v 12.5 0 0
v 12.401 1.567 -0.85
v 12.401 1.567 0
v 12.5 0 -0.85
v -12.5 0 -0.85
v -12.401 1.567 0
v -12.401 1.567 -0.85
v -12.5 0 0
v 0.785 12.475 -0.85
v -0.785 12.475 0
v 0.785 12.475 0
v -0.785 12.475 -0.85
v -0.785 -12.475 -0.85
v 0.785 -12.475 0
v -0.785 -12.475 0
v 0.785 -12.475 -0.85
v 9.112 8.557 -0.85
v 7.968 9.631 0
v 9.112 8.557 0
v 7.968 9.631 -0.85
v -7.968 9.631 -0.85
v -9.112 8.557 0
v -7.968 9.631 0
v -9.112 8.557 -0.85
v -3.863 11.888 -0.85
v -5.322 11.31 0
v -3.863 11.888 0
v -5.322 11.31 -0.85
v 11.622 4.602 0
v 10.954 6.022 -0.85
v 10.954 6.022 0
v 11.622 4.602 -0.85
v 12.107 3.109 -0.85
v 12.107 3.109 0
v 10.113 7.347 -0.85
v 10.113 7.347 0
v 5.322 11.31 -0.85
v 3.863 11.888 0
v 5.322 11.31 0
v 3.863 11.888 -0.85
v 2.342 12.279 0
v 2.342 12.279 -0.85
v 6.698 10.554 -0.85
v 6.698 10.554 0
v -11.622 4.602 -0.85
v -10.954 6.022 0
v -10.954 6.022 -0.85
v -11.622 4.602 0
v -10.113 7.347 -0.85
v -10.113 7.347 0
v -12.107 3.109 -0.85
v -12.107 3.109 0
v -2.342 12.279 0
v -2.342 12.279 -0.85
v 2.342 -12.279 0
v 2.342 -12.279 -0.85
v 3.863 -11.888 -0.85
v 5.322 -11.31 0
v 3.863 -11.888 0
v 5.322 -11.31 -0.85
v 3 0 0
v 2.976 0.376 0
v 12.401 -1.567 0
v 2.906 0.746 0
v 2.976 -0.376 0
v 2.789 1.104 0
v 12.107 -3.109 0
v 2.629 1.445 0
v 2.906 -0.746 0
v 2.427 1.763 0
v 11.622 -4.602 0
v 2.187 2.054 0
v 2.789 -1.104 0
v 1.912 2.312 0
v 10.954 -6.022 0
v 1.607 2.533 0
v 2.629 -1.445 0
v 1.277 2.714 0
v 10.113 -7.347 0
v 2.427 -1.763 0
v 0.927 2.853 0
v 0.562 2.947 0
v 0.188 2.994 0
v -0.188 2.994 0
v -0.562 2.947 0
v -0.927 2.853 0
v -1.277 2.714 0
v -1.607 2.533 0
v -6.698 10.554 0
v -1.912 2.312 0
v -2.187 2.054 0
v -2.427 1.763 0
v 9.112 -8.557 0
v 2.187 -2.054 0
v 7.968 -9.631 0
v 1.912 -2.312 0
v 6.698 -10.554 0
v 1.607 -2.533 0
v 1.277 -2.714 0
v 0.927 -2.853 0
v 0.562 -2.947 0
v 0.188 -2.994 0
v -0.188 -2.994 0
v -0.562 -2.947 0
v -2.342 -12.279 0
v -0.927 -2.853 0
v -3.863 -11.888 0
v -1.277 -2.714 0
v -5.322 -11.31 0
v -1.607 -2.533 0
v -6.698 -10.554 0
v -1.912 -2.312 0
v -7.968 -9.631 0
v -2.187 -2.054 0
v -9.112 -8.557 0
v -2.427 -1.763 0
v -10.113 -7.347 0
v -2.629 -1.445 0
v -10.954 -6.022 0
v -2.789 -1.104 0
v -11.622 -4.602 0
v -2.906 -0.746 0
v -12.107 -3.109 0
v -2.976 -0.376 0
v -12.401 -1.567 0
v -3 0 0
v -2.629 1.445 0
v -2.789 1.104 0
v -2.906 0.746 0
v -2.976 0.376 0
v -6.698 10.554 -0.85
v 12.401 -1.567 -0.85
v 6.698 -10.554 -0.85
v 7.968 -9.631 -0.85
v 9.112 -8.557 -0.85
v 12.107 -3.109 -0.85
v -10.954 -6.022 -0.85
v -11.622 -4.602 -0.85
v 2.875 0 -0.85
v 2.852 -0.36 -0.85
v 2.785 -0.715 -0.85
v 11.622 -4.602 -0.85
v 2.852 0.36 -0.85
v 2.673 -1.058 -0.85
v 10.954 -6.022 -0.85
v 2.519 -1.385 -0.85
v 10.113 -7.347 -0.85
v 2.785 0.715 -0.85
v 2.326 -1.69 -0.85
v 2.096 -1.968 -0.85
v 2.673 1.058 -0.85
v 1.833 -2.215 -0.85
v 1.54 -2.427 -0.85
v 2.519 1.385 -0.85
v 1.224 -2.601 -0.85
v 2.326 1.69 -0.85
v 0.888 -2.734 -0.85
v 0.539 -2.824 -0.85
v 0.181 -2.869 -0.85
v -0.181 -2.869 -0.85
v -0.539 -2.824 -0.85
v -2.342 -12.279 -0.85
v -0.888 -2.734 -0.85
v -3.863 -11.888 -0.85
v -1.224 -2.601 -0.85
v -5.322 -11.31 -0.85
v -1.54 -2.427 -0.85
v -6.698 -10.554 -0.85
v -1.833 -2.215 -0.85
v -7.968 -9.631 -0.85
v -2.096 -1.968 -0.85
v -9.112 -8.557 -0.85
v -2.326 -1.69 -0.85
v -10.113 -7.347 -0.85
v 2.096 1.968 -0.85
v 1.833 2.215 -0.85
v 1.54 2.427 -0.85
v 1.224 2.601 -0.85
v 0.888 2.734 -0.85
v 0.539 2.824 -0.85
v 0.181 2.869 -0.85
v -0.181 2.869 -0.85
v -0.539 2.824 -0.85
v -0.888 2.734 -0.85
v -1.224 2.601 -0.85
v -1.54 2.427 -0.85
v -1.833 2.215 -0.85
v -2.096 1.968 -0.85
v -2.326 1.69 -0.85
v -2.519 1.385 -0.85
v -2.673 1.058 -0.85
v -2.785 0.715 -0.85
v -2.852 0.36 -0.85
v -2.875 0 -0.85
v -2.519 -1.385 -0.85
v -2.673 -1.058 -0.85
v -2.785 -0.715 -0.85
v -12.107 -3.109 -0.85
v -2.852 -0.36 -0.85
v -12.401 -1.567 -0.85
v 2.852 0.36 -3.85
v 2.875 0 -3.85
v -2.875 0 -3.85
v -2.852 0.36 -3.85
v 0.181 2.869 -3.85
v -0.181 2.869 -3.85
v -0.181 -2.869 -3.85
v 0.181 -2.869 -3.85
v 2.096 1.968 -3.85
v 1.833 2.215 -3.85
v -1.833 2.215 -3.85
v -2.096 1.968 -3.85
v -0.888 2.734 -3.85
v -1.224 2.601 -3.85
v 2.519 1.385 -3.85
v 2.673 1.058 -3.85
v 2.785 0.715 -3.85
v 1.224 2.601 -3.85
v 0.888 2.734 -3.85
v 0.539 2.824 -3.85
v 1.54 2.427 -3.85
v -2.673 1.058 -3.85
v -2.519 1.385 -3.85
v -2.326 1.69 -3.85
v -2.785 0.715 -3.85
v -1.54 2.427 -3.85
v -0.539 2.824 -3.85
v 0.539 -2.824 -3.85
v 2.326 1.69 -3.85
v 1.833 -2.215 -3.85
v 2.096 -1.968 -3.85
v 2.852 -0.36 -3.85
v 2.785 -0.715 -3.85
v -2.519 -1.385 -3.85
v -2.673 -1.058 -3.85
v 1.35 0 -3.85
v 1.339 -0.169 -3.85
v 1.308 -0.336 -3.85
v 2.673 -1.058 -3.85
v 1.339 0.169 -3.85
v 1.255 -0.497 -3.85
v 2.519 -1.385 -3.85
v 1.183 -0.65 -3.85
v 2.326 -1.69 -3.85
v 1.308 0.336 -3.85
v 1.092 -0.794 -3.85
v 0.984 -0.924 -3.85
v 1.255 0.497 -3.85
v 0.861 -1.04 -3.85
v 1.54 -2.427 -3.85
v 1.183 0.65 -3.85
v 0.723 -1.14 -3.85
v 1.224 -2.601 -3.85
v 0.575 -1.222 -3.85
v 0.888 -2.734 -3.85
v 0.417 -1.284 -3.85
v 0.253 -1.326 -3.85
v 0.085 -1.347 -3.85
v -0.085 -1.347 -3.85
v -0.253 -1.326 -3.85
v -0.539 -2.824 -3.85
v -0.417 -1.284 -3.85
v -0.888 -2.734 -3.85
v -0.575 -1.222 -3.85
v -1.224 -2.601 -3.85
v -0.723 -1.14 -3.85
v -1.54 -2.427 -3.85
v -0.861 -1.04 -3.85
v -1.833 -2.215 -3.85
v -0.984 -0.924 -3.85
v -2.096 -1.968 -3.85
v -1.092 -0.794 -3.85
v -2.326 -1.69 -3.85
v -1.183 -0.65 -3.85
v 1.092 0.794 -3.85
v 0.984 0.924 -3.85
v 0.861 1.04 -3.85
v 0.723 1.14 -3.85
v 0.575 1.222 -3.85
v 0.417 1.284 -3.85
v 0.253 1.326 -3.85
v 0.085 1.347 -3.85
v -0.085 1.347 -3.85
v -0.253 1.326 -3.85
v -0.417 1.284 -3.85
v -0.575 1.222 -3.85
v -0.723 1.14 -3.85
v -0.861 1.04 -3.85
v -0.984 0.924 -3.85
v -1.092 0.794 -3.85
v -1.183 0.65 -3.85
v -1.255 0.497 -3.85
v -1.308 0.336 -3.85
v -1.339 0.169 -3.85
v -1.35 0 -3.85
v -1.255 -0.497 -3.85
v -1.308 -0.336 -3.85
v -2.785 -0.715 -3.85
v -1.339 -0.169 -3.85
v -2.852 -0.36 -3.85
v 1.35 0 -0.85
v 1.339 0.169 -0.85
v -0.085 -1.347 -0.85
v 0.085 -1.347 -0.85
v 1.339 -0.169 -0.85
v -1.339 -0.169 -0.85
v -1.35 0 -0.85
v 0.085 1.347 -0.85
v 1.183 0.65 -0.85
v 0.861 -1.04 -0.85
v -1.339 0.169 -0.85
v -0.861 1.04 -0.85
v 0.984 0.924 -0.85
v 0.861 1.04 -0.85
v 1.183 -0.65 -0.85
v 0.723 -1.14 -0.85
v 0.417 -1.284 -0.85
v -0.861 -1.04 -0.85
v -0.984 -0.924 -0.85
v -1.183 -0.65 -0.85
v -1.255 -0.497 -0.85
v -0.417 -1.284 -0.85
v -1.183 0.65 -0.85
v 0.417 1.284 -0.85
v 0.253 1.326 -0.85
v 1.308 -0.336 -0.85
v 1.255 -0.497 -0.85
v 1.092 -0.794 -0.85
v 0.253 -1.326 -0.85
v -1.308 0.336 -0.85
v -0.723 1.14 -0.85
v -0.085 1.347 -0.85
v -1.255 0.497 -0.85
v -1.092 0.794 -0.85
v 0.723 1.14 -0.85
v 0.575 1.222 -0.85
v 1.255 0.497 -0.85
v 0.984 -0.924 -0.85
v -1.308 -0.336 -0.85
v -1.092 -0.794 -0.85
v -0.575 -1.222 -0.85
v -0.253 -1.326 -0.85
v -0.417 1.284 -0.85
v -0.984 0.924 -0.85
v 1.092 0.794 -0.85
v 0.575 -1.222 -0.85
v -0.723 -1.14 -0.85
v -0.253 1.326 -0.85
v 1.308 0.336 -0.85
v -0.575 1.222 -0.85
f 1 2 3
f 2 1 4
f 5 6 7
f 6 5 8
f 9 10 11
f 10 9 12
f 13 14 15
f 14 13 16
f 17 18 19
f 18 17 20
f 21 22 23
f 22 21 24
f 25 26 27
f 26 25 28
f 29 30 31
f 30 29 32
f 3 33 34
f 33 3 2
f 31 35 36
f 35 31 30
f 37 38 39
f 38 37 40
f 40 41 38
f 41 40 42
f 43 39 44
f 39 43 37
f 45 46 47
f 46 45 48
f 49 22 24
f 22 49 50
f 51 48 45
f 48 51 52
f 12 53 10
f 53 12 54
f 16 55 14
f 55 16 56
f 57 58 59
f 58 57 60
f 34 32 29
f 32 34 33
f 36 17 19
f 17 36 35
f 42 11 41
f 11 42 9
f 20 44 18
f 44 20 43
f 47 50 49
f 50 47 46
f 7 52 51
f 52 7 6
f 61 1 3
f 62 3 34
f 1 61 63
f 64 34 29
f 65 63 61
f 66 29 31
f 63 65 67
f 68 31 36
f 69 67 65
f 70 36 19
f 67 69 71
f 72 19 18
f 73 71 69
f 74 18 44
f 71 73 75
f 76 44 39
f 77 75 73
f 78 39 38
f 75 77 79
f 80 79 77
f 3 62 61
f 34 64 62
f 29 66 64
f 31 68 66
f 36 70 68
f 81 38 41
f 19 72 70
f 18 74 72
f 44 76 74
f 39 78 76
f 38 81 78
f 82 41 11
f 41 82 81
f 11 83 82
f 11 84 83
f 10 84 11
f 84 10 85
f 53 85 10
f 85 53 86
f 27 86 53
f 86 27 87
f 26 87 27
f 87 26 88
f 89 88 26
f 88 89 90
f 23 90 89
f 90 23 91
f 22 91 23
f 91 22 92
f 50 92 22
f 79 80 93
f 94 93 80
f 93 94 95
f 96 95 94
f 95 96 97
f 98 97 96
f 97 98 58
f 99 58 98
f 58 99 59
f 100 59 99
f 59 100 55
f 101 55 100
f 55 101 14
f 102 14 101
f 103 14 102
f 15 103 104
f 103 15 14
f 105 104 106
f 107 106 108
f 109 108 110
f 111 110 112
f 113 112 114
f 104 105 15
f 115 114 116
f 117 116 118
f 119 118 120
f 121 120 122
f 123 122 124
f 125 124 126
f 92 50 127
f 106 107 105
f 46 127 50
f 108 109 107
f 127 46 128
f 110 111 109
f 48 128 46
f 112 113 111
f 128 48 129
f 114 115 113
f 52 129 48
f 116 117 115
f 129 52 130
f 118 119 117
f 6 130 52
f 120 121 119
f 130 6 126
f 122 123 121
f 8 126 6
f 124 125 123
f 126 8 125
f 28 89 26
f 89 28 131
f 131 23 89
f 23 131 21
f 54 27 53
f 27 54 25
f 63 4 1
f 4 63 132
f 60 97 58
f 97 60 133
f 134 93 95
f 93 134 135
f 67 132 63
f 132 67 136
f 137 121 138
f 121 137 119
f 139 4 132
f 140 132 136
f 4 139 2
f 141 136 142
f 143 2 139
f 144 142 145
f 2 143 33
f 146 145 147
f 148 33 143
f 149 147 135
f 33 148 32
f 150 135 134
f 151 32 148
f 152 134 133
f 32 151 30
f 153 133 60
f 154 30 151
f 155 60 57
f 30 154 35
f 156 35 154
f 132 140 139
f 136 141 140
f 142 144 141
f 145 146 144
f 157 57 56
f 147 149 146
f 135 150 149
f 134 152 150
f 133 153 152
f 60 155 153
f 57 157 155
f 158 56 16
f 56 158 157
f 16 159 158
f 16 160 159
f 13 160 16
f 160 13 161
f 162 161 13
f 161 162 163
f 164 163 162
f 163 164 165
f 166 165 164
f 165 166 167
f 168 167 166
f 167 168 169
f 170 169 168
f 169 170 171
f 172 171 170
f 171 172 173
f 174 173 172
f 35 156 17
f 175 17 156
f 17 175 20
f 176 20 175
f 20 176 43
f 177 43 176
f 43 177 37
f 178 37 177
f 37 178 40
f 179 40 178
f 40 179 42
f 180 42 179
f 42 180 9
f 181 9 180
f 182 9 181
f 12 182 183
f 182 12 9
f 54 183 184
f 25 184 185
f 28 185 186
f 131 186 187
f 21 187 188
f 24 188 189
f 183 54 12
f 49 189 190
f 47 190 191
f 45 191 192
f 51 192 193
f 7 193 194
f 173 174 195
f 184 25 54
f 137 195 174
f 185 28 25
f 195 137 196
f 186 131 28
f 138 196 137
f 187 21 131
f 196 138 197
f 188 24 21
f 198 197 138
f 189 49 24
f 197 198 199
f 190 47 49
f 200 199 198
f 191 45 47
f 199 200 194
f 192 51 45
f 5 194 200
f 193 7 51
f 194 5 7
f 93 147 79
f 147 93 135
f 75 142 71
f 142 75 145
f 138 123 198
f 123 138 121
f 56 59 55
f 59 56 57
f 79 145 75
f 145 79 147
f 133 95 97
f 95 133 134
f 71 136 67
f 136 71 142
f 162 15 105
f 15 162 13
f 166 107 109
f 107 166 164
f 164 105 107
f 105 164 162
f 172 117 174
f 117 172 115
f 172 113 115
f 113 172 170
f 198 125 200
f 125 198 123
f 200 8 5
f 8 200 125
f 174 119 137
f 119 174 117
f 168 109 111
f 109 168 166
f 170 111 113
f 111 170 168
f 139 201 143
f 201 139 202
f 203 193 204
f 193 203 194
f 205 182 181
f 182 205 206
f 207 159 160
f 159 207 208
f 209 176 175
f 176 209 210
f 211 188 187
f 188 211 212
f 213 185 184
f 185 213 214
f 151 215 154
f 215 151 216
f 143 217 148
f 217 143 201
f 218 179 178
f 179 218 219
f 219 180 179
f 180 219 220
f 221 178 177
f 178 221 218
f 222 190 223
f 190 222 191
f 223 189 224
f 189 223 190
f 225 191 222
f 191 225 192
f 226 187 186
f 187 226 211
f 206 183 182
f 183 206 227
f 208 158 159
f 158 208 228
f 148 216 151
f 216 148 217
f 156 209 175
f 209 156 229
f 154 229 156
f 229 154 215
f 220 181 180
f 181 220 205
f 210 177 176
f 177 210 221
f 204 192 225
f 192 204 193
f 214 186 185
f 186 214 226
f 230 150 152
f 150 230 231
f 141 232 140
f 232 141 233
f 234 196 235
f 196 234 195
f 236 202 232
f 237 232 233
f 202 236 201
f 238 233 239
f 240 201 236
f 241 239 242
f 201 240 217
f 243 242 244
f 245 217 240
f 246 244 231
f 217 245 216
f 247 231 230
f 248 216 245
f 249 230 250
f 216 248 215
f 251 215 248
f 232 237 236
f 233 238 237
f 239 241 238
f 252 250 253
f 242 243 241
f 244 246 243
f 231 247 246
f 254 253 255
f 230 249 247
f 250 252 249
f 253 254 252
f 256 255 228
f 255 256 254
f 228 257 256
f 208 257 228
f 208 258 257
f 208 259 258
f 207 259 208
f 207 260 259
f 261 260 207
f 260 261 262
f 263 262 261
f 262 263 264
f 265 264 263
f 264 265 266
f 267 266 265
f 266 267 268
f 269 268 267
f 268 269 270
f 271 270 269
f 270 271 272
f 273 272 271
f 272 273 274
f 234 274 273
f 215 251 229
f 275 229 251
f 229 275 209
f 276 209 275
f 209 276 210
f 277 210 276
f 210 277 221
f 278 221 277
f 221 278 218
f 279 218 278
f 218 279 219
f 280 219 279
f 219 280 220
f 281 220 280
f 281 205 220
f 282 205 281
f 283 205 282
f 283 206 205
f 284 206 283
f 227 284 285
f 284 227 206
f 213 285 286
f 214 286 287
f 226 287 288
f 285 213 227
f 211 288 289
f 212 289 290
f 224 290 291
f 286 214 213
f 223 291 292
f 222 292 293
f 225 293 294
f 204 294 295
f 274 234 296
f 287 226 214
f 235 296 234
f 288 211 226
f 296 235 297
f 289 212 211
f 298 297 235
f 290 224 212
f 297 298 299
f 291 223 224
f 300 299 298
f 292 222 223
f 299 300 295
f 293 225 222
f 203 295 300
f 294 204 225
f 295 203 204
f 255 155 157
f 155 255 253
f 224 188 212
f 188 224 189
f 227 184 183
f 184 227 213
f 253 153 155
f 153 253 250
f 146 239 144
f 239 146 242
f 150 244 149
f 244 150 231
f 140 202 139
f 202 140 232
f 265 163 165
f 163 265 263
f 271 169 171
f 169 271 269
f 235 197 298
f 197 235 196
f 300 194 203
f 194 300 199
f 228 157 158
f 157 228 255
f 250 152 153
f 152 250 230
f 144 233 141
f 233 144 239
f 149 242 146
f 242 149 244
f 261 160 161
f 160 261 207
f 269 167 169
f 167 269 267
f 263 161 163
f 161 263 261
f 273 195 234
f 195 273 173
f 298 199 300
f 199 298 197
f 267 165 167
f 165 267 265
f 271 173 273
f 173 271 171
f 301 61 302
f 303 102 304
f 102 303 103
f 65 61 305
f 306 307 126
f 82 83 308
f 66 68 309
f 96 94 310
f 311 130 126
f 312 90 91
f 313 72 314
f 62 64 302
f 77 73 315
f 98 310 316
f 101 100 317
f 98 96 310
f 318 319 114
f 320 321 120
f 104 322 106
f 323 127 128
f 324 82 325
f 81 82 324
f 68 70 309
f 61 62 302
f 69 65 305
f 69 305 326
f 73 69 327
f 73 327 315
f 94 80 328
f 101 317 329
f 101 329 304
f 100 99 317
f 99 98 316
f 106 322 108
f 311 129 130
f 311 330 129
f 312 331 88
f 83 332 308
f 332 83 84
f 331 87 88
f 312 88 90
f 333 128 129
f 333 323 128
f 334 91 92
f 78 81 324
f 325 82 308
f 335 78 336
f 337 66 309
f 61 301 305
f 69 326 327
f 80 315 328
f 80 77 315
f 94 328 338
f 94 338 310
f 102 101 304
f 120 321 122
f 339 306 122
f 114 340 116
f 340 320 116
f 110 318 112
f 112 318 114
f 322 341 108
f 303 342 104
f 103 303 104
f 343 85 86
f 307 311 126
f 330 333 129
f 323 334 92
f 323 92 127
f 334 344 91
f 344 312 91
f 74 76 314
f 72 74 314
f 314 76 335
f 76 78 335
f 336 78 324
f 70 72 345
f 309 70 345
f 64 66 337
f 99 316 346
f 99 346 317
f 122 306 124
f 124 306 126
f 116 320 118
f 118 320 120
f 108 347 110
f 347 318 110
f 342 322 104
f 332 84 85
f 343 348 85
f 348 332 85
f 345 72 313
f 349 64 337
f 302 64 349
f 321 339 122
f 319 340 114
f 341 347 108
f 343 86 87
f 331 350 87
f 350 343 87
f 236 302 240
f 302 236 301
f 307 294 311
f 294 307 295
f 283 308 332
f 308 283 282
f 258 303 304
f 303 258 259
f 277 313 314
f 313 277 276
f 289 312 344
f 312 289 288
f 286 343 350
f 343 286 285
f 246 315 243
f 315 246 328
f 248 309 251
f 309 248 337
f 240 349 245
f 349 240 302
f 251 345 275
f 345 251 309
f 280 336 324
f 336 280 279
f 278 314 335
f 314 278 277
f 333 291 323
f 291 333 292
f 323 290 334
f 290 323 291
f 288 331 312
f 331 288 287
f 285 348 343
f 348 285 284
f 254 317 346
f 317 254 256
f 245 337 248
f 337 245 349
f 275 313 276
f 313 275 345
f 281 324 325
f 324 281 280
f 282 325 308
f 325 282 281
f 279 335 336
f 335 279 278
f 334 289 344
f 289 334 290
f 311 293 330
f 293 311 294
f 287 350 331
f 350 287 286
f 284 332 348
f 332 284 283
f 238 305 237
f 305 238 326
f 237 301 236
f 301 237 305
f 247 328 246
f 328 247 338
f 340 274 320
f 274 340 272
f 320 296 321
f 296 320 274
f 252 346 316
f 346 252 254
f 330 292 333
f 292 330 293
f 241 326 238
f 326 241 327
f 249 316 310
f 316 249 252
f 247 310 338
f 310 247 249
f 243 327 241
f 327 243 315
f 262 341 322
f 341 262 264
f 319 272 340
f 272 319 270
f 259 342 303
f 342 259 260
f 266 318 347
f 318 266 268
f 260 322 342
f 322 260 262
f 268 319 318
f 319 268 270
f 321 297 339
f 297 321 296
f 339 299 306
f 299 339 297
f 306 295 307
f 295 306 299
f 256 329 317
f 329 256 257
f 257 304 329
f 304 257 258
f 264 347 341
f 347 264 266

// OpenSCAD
$fn = 50;


difference() {
	union() {
		translate(v = [0, 0, -0.8500000000]) {
			cylinder(h = 0.8500000000, r = 12.5000000000);
		}
		#translate(v = [0, 0, -3.8500000000]) {
			cylinder(h = 3.8500000000, r = 2.8750000000);
		}
	}
	union() {
		translate(v = [0, 0, 0]) {
			rotate(a = [0, 0, 0]) {
				difference() {
					union() {
						translate(v = [0, 0, -3.8500000000]) {
							cylinder(h = 3.8500000000, r = 1.0000000000);
						}
						translate(v = [0, 0, -0.8500000000]) {
							cylinder(h = 0.8500000000, r1 = 1.3500000000, r2 = 3.0000000000);
						}
						translate(v = [0, 0, -3.8500000000]) {
							cylinder(h = 3.8500000000, r = 1.3500000000);
						}
						translate(v = [0, 0, -3.8500000000]) {
							cylinder(h = 3.8500000000, r = 1.0000000000);
						}
					}
					union();
				}
			}
		}
	}
}
